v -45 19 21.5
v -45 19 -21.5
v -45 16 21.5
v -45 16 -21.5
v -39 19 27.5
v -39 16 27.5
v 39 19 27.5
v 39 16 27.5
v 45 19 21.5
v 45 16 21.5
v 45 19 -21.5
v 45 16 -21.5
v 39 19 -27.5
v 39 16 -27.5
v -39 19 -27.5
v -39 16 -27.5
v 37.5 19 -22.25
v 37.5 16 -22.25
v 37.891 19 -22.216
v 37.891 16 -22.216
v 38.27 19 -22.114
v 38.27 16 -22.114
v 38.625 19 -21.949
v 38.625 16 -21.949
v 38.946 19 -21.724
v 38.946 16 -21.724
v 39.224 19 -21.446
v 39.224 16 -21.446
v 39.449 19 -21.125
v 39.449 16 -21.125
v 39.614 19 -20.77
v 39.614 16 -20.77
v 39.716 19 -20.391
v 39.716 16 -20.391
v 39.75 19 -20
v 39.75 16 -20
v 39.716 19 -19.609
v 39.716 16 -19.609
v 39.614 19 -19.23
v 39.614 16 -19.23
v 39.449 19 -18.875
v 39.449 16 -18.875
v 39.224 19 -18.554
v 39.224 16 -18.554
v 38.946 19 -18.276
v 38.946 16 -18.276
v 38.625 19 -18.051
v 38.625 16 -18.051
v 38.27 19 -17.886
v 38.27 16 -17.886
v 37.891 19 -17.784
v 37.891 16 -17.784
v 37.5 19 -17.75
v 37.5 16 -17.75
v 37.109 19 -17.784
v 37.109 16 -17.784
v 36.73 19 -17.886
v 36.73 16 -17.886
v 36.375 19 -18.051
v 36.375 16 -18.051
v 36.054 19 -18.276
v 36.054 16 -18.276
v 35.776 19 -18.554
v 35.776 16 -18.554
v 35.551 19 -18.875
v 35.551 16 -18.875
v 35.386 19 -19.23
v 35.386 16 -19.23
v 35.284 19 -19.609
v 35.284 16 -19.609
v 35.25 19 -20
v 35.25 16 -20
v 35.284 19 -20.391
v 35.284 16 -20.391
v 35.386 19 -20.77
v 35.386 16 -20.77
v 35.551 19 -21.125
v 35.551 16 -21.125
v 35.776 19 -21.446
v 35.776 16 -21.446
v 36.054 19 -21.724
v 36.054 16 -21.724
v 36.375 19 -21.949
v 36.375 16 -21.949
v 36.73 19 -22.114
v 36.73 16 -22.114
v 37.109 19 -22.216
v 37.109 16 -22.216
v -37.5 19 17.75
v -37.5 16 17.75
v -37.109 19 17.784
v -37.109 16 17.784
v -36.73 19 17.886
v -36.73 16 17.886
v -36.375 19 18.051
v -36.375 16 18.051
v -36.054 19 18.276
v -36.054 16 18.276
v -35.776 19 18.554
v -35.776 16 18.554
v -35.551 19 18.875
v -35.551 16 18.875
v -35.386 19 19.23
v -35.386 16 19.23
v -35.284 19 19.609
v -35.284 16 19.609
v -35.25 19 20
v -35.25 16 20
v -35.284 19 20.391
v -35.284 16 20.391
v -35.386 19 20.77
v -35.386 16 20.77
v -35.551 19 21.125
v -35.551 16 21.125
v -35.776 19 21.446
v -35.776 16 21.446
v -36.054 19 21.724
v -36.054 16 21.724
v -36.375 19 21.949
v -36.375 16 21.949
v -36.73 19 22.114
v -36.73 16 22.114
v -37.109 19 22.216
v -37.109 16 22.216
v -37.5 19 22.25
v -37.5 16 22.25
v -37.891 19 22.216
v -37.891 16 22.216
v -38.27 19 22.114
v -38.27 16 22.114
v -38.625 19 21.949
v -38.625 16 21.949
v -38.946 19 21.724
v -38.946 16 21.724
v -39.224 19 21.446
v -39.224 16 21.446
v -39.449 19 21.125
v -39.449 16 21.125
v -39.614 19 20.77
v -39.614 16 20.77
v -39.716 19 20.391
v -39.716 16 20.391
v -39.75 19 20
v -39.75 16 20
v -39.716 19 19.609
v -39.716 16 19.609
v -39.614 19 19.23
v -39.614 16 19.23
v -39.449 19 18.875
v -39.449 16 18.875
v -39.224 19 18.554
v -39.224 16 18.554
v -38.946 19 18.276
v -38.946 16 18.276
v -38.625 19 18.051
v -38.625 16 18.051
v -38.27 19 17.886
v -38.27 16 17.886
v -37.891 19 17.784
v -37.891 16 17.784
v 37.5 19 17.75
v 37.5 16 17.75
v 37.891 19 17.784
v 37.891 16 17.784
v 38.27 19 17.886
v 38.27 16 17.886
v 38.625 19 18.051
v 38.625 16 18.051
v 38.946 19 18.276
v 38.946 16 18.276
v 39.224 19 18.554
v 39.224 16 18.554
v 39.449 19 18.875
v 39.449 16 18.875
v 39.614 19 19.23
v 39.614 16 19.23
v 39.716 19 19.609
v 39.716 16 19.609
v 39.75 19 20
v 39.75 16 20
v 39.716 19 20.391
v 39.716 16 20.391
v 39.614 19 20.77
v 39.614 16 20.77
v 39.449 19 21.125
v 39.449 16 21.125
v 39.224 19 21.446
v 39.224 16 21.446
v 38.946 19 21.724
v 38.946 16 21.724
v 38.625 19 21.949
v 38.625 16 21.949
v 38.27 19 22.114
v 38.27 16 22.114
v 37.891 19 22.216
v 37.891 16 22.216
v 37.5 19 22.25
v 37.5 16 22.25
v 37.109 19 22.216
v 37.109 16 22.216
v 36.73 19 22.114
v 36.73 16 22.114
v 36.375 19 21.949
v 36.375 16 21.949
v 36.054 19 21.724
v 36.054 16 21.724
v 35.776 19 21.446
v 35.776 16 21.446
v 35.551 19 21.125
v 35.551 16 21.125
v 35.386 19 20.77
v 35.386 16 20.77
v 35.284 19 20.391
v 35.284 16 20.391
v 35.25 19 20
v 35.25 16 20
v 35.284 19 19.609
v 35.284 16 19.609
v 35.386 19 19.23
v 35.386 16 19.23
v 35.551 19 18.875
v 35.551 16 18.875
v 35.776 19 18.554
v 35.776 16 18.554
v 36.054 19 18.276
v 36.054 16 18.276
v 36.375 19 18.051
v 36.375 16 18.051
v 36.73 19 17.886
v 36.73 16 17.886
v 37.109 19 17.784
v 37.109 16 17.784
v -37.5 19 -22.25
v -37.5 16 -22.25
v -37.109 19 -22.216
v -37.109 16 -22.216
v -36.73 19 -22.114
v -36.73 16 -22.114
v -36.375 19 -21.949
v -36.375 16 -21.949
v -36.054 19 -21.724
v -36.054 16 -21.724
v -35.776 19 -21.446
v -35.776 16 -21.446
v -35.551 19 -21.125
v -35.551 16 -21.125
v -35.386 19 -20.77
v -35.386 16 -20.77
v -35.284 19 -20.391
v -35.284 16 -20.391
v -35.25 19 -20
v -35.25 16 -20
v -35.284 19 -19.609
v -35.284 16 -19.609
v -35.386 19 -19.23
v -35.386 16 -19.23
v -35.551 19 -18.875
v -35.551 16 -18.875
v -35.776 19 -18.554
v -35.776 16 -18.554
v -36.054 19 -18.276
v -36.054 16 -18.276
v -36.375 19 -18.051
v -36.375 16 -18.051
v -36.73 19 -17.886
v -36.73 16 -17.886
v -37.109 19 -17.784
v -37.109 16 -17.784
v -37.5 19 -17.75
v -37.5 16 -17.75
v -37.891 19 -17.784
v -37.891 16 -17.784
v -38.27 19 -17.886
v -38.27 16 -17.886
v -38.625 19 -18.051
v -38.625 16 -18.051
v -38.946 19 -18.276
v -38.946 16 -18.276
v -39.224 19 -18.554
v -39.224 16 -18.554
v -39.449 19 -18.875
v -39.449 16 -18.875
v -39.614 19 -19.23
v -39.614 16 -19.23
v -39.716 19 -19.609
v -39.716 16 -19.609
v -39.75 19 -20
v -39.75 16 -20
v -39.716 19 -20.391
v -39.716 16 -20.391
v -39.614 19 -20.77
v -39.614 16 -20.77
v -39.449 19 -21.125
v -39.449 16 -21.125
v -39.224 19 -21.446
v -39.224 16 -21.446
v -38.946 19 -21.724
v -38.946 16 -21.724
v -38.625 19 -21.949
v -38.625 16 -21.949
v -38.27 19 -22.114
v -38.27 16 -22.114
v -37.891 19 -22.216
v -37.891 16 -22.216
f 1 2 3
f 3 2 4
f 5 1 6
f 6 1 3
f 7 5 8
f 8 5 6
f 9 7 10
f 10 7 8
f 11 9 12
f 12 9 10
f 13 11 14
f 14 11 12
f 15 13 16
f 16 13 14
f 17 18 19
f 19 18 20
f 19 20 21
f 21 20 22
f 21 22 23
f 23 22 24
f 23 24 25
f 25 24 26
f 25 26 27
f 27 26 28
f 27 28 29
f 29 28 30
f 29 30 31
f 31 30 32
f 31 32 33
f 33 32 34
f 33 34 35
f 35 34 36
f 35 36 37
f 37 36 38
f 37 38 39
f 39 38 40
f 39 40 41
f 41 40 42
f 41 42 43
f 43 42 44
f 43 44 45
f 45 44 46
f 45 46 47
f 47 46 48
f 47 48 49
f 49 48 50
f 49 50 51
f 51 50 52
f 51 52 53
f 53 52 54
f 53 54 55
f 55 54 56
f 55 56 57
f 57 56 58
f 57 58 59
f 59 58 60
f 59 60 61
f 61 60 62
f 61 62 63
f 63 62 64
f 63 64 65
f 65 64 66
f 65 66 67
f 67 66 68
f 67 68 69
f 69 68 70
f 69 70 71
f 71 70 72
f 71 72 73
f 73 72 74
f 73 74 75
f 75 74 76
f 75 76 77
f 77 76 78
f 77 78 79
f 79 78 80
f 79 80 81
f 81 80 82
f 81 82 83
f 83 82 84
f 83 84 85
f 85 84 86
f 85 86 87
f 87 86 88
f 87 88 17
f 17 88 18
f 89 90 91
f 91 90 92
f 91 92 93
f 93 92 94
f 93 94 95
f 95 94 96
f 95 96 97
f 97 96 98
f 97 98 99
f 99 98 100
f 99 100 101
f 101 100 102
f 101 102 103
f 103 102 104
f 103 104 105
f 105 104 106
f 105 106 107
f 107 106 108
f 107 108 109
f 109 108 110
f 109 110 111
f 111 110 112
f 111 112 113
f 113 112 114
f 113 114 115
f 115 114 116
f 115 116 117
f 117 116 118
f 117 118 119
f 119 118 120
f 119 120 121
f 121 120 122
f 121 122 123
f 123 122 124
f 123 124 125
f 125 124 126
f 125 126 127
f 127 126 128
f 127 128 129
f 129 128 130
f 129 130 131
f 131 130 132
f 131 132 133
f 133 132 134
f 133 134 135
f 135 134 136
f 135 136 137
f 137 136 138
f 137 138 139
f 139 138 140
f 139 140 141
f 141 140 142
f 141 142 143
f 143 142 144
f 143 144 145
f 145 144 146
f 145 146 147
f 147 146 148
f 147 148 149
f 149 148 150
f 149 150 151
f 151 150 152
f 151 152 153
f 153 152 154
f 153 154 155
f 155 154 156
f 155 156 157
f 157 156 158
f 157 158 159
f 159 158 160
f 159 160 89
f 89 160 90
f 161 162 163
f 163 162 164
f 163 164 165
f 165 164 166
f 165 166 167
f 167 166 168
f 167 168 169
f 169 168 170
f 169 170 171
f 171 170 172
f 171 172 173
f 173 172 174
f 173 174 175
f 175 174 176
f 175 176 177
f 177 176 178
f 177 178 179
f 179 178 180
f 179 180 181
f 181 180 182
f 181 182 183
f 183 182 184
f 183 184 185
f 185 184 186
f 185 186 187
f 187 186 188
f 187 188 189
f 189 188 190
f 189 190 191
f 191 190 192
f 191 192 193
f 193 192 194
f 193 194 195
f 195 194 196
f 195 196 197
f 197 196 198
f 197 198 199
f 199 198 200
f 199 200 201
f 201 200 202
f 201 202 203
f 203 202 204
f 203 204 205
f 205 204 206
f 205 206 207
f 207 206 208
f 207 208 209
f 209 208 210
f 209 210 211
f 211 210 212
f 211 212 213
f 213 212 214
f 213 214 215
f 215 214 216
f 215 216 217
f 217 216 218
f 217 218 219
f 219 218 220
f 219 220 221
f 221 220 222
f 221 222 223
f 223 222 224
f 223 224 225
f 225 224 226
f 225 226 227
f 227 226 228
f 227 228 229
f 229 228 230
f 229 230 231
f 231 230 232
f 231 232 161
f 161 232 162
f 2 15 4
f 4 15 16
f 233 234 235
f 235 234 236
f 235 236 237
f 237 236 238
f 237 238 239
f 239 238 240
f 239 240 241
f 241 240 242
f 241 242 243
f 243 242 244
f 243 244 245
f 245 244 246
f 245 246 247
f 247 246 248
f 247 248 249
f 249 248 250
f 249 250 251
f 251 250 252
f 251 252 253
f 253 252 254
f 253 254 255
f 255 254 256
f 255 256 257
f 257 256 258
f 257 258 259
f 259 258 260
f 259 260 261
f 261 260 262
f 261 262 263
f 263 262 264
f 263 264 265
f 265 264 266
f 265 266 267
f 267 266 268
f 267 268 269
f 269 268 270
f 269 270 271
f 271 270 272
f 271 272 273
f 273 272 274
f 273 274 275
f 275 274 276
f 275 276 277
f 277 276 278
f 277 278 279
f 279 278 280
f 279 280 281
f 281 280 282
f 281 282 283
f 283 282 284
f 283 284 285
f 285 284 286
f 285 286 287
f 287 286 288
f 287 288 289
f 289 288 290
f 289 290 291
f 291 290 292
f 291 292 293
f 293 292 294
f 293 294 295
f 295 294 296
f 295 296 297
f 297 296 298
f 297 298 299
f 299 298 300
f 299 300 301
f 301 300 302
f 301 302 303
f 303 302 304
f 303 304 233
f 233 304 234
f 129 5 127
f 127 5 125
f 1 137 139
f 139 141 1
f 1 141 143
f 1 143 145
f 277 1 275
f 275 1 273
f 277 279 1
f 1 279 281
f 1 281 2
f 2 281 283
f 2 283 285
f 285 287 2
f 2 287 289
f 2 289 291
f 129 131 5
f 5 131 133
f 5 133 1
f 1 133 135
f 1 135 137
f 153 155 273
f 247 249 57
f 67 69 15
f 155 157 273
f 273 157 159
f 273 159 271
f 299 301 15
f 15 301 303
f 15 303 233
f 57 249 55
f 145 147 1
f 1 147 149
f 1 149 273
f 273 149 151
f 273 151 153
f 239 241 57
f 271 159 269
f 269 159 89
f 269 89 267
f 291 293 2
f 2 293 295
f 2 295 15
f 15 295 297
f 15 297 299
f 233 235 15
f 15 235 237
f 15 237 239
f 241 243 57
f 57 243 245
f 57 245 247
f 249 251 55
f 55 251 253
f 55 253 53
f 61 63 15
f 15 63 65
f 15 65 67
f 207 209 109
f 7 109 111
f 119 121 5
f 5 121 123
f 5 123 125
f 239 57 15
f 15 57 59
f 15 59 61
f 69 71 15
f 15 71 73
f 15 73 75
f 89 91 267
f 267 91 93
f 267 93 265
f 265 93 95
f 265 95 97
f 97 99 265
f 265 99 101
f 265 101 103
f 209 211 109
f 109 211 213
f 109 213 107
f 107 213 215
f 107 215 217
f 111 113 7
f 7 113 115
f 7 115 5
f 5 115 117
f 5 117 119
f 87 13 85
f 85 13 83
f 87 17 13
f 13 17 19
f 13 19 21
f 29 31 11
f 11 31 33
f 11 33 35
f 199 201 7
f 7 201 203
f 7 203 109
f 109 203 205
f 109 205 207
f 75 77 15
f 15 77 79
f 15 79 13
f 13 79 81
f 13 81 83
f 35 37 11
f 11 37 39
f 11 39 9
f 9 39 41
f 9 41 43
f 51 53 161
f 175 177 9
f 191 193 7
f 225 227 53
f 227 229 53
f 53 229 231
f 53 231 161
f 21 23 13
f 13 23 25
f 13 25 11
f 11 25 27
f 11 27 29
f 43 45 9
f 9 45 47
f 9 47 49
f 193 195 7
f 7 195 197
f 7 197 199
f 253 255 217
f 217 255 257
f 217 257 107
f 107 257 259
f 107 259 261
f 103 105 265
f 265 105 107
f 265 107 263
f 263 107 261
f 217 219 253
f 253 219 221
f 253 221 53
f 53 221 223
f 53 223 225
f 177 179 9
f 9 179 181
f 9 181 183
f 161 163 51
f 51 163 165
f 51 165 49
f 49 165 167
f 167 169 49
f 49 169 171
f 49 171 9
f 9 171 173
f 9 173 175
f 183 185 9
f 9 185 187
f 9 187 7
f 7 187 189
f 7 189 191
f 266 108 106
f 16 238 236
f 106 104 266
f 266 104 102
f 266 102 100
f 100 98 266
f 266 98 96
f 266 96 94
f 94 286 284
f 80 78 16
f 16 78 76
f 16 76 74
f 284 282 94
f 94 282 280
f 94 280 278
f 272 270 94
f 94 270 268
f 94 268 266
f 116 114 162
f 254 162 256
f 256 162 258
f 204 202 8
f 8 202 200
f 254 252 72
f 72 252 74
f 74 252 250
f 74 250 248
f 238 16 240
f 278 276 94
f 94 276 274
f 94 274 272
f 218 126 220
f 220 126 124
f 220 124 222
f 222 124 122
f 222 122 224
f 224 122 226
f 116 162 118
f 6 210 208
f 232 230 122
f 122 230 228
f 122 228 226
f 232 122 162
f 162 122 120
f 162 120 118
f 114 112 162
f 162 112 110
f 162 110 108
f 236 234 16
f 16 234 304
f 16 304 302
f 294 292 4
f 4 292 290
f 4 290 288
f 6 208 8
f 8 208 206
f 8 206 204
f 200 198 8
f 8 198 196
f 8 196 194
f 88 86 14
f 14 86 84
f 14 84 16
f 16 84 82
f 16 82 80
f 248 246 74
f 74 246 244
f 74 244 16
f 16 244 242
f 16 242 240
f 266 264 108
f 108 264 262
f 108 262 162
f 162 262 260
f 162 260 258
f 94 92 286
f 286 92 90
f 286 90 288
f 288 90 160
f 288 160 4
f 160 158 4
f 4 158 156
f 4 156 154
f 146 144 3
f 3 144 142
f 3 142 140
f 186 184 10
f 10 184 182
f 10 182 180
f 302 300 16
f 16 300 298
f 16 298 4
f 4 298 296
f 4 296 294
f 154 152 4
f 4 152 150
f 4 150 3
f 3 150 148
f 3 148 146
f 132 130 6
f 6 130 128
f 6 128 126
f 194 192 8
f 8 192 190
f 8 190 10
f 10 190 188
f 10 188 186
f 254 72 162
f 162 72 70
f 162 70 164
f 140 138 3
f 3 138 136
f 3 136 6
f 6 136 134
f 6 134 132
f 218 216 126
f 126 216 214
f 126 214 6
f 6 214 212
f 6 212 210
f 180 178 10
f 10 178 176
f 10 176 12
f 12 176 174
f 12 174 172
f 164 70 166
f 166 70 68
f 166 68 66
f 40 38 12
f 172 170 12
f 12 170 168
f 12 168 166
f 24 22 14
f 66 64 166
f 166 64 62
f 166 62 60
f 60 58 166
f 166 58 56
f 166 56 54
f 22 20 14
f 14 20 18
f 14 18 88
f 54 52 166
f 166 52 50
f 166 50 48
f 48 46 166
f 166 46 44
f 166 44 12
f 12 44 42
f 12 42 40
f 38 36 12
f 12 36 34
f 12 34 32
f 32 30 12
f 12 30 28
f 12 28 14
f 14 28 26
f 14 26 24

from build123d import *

# Parameters (mm, degrees)
SKETCH1_W            = 90
SKETCH1_H            = 55
BOSS_EXTRUDE1_DEPTH  = 16
SKETCH2_W            = 22
SKETCH2_H            = 1.75
SKETCH2_H_2          = 12.5
CUT_EXTRUDE1_DEPTH   = 4
SKETCH3_W            = 20
SKETCH3_H            = 13
CUT_EXTRUDE2_DEPTH   = 20
CHAMFER1_SIZE        = 6
M4_CLEARANCE_HOLE1_D = 4.5
SKETCH7_W            = 27.5
SKETCH7_H            = 8.5
CUT_EXTRUDE3_DEPTH   = 3
SKETCH8_W            = 16.5
SKETCH8_H            = 8.5
CUT_EXTRUDE4_DEPTH   = 12
SKETCH9_R            = 2.25
CUT_EXTRUDE5_DEPTH   = 17
CHAMFER2_SIZE        = 5
SKETCH10_W           = 4
SKETCH10_H           = 22.5
SKETCH10_R           = 2.25
BOSS_EXTRUDE2_DEPTH  = 3


with BuildPart() as part:
    # Sketch1 → Boss-Extrude1 (new body)
    with BuildSketch(Plane(origin=(0, 0, 0), x_dir=(1, 0, 0), z_dir=(0, 1, 0))):
        Rectangle(SKETCH1_W, SKETCH1_H)
    extrude(amount=BOSS_EXTRUDE1_DEPTH)

    # Sketch2 → Cut-Extrude1 (cut)
    with BuildSketch(Plane.ZY.offset(45)):
        with Locations((0, 15.125)):
            Rectangle(SKETCH2_W, SKETCH2_H)
        Polygon((11, 16), (11, 14.25), (13, 14.25), (11.25, 16), align=None)
        Polygon((-11.25, 16), (-13, 14.25), (-11, 14.25), (-11, 16), align=None)
        Polygon((-17.5, 14.25), (-17.5, 1.75), (-13, 1.75), (-11, 1.75), (-11, 14.25), (-13, 14.25), align=None)
        with Locations((0, 8)):
            Rectangle(SKETCH2_W, SKETCH2_H_2)
        Polygon((11, 14.25), (11, 1.75), (13, 1.75), (17.5, 1.75), (17.5, 14.25), (13, 14.25), align=None)
        with Locations((0, 0.875)):
            Rectangle(SKETCH2_W, SKETCH2_H)
        Polygon((13, 1.75), (11, 1.75), (11, 0), (11.25, 0), align=None)
        Polygon((-11, 1.75), (-13, 1.75), (-11.25, 0), (-11, 0), align=None)
    extrude(amount=-CUT_EXTRUDE1_DEPTH, mode=Mode.SUBTRACT)

    # Sketch3 → Cut-Extrude2 (cut)
    with BuildSketch(Plane.ZY.offset(41)):
        with Locations((0, 8)):
            Rectangle(SKETCH3_W, SKETCH3_H)
    extrude(amount=-CUT_EXTRUDE2_DEPTH, mode=Mode.SUBTRACT)

    # Chamfer1
    chamfer1_edges = [part.edges().sort_by_distance(p)[0] for p in [
        (45, 8, 27.5),
        (-45, 8, 27.5),
        (-45, 8, -27.5),
        (45, 8, -27.5),
    ]]
    chamfer(chamfer1_edges, length=CHAMFER1_SIZE)

    # M4 Clearance Hole1 (through all)
    with Locations(Plane(origin=(0, 16, 0), x_dir=(1, 0, 0), z_dir=(0, 1, 0))):
        with Locations((0, 0), (37.5, 20), (-37.5, -20), (-37.5, 20), (37.5, -20)):
            Hole(M4_CLEARANCE_HOLE1_D / 2)

    # Sketch7 → Cut-Extrude3 (cut)
    with BuildSketch(Plane(origin=(45, 0, 0), x_dir=(0, 0, -1), z_dir=(1, 0, 0))):
        with Locations((0, 8)):
            Rectangle(SKETCH7_W, SKETCH7_H)
    extrude(amount=-CUT_EXTRUDE3_DEPTH, mode=Mode.SUBTRACT)

    # Sketch8 → Cut-Extrude4 (cut)
    with BuildSketch(Plane(origin=(42, 0, 0), x_dir=(0, 0, -1), z_dir=(1, 0, 0))):
        with Locations((0, 8)):
            Rectangle(SKETCH8_W, SKETCH8_H)
    extrude(amount=-CUT_EXTRUDE4_DEPTH, mode=Mode.SUBTRACT)

    # Sketch9 → Cut-Extrude5 (cut, through all)
    with BuildSketch(Plane(origin=(0, 16, 0), x_dir=(1, 0, 0), z_dir=(0, 1, 0))):
        Polygon((30, -12.5), (40, -12.5), (40, 12.5), (30, 12.5), (30, 22.5), (-30, 22.5), (-30, 12.5), (-36, 12.5), (-36, -12.5), (-30, -12.5), (-30, -22.5), (30, -22.5), align=None)
        Circle(SKETCH9_R, mode=Mode.SUBTRACT)
    extrude(amount=-CUT_EXTRUDE5_DEPTH, mode=Mode.SUBTRACT)

    # Chamfer2
    chamfer2_edges = [part.edges().sort_by_distance(p)[0] for p in [
        (30, 8, -12.5),
        (30, 8, 12.5),
        (-30, 8, 12.5),
        (-30, 8, -12.5),
    ]]
    chamfer(chamfer2_edges, length=CHAMFER2_SIZE)


with BuildPart() as body_2:
    # Sketch10 → Boss-Extrude2 (new body)
    with BuildSketch(Plane(origin=(0, 16, 0), x_dir=(1, 0, 0), z_dir=(0, 1, 0))):
        with Locations((-43, 0)):
            Rectangle(SKETCH10_W, SKETCH10_H)
        Polygon((39, -27.5), (45, -21.5), (45, 21.5), (39, 27.5), (-39, 27.5), (-45, 21.5), (-45, 11.25), (-41, 11.25), (-41, -11.25), (-45, -11.25), (-45, -21.5), (-39, -27.5), align=None)
        with Locations((37.5, -20)):
            Circle(SKETCH10_R, mode=Mode.SUBTRACT)
        with Locations((-37.5, -20)):
            Circle(SKETCH10_R, mode=Mode.SUBTRACT)
        with Locations((37.5, 20)):
            Circle(SKETCH10_R, mode=Mode.SUBTRACT)
        with Locations((-37.5, 20)):
            Circle(SKETCH10_R, mode=Mode.SUBTRACT)
        Polygon((-36, -12.5), (-36, 12.5), (-35, 12.5), (-30, 17.5), (-30, 22.5), (30, 22.5), (30, 17.5), (35, 12.5), (40, 12.5), (40, -12.5), (35, -12.5), (30, -17.5), (30, -22.5), (-30, -22.5), (-30, -17.5), (-35, -12.5), align=None, mode=Mode.SUBTRACT)
        Polygon((-36, 12.5), (-35, 12.5), (-30, 17.5), (-30, 22.5), (30, 22.5), (30, 17.5), (35, 12.5), (40, 12.5), (40, -12.5), (35, -12.5), (30, -17.5), (30, -22.5), (-30, -22.5), (-30, -17.5), (-35, -12.5), (-36, -12.5), align=None)
    extrude(amount=BOSS_EXTRUDE2_DEPTH)


solid = body_2.part
